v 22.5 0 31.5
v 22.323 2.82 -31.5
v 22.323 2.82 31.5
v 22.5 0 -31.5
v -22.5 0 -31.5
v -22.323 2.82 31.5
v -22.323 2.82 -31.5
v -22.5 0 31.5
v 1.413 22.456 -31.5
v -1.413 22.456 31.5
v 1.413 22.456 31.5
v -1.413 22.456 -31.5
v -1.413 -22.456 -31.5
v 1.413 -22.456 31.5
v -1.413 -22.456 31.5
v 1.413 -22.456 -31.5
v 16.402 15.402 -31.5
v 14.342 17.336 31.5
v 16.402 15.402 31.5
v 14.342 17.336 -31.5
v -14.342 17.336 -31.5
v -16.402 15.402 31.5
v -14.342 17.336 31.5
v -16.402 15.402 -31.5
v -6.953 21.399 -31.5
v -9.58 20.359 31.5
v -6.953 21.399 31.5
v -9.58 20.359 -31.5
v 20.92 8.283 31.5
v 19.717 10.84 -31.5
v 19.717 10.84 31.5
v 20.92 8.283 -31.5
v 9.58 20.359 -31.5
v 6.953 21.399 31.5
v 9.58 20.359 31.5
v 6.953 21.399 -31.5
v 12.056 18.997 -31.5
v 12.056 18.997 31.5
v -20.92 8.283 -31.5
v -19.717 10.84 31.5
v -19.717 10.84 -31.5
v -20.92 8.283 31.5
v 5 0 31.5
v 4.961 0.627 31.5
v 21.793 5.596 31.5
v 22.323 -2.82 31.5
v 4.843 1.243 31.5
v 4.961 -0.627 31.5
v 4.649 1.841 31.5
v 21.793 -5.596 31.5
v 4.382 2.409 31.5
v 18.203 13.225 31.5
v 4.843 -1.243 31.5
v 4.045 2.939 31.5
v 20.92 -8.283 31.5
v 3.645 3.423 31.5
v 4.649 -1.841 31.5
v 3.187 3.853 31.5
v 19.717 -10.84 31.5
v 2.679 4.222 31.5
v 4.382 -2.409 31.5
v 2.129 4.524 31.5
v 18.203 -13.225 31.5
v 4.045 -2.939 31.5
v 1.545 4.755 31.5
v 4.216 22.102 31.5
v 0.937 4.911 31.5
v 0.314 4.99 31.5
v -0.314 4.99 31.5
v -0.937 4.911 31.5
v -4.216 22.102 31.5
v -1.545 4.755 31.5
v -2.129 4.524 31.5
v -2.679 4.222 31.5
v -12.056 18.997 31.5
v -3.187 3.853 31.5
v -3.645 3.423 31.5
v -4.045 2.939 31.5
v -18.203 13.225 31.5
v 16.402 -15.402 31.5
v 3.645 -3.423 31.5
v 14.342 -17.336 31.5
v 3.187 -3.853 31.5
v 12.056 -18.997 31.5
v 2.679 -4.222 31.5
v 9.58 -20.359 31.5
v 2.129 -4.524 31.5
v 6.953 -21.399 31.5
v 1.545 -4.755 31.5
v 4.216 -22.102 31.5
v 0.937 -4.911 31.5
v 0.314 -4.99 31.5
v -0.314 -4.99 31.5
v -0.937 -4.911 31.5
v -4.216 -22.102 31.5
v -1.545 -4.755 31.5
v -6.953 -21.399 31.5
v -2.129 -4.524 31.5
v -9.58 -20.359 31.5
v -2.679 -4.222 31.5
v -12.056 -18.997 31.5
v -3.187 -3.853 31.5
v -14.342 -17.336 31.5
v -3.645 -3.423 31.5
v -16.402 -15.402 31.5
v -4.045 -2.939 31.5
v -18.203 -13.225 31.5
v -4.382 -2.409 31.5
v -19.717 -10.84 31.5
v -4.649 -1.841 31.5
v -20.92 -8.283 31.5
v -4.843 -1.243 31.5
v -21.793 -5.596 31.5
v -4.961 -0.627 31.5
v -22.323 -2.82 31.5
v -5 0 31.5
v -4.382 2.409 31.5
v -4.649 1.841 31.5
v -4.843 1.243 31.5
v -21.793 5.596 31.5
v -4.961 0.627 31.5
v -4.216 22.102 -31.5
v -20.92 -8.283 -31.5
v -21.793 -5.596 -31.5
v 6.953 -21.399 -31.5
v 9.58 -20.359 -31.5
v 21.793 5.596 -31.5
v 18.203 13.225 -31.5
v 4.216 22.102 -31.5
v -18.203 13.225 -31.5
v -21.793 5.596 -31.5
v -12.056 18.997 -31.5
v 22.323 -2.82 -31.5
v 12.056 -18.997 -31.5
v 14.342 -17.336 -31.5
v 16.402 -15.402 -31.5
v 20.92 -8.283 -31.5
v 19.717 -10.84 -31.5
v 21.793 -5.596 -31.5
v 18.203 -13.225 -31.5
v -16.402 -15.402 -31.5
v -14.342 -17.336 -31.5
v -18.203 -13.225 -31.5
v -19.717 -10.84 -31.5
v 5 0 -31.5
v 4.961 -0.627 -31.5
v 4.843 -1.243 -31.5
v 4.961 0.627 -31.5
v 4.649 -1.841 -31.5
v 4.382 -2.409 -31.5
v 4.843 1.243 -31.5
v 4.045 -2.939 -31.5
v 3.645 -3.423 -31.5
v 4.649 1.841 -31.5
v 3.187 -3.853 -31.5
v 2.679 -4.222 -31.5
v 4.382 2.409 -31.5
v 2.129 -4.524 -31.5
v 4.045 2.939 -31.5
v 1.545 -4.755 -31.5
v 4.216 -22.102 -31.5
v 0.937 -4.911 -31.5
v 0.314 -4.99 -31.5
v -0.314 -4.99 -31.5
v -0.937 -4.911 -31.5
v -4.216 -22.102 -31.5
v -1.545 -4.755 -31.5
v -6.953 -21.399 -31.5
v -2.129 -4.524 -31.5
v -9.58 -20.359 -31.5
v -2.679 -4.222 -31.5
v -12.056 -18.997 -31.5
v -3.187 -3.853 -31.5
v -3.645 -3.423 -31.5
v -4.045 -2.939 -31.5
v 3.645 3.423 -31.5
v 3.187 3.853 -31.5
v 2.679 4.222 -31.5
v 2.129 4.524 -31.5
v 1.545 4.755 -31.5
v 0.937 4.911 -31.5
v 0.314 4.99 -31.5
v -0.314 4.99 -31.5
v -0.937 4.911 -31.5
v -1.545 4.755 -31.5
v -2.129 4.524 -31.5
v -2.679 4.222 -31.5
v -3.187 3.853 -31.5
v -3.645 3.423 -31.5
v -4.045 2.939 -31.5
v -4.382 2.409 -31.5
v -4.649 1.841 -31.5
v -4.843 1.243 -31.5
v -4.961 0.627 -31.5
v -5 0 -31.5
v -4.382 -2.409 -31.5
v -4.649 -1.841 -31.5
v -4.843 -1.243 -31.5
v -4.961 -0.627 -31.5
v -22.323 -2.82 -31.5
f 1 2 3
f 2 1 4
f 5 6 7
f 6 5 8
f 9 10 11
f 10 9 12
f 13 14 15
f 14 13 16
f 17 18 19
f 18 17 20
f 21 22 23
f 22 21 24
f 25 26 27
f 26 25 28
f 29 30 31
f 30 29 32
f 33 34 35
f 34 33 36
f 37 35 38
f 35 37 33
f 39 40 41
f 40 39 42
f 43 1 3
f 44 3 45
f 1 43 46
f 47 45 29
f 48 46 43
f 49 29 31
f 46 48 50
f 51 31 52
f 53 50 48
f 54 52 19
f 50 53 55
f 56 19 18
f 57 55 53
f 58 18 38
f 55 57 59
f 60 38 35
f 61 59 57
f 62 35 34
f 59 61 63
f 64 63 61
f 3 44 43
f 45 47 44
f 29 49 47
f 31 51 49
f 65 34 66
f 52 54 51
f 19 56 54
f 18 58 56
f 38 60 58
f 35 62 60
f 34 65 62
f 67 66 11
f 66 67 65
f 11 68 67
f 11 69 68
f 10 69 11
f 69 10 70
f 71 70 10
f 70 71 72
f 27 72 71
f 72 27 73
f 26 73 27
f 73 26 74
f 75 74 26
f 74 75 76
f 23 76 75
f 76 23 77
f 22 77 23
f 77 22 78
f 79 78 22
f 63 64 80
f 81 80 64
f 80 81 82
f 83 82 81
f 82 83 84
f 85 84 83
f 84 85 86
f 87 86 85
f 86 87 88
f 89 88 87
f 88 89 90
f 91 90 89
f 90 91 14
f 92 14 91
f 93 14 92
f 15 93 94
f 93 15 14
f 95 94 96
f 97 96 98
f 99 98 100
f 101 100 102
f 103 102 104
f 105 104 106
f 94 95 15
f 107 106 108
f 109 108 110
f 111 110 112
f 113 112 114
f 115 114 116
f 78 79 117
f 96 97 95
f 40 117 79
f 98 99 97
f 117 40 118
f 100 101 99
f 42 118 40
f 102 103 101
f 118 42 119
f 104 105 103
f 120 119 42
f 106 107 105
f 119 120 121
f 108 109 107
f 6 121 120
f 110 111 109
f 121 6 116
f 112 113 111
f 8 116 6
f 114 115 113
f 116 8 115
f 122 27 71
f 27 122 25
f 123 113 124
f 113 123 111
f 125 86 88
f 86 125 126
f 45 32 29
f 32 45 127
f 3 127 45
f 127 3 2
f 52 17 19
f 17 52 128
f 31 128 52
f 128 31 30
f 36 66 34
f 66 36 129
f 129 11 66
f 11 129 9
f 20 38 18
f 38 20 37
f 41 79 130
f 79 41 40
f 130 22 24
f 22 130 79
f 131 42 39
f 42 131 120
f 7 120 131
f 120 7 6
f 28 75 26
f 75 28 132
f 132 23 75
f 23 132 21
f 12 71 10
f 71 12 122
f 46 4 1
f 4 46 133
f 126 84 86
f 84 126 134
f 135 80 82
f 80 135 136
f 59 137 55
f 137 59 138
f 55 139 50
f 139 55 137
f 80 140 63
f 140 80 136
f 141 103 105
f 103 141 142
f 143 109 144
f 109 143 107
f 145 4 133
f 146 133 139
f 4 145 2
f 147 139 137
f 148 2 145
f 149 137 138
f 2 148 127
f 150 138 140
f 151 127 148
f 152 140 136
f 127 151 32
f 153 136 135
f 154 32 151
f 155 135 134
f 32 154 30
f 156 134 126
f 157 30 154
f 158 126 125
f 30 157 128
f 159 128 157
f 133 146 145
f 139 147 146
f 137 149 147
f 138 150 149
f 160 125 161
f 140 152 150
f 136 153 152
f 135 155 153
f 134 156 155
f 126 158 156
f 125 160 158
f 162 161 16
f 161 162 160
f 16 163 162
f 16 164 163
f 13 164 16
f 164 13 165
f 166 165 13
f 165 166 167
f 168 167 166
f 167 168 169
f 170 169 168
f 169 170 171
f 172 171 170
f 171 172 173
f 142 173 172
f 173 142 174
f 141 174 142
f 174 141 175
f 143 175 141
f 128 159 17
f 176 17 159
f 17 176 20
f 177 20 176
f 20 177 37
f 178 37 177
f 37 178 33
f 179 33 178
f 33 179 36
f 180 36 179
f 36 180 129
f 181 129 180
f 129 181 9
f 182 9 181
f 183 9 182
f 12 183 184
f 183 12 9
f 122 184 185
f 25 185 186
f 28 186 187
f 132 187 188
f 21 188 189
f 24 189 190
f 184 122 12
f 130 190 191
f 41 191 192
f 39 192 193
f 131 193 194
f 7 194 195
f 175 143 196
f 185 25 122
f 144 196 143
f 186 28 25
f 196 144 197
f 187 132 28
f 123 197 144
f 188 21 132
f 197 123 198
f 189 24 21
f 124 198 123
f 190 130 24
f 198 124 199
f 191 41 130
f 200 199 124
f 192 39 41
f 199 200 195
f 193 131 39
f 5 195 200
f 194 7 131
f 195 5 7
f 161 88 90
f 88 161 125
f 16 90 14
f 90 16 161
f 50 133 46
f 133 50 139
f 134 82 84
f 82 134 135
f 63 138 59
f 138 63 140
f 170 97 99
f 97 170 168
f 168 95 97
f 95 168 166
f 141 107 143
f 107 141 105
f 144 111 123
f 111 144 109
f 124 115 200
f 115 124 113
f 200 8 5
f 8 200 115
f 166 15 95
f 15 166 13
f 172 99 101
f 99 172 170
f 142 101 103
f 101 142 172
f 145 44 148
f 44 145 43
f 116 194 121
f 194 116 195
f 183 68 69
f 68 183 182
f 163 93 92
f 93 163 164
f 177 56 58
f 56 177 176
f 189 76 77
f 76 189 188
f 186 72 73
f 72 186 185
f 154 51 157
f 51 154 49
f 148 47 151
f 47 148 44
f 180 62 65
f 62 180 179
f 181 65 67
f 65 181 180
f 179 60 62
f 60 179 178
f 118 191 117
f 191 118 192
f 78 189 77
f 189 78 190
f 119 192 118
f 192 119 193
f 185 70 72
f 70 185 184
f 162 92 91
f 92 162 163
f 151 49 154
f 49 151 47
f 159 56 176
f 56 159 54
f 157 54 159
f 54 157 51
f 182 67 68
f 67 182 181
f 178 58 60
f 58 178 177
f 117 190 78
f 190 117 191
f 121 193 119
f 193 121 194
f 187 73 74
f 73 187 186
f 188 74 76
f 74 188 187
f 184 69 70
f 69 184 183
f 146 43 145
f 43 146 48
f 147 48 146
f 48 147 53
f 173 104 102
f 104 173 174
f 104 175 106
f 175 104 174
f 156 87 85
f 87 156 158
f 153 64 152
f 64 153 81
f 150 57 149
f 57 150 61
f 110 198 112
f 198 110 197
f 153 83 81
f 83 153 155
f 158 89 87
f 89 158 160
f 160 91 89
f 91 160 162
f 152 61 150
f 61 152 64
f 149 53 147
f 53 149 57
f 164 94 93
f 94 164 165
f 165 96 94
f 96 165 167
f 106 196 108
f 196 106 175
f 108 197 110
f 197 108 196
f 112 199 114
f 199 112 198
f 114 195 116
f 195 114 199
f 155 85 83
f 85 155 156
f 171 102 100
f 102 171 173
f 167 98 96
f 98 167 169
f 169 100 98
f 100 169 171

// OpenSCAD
$fn = 50;


difference() {
	union() {
		translate(v = [0, 0, -31.5000000000]) {
			cylinder(h = 63, r = 22.5000000000);
		}
	}
	union() {
		translate(v = [0, 0, -100.0000000000]) {
			cylinder(h = 200, r = 5);
		}
	}
}
